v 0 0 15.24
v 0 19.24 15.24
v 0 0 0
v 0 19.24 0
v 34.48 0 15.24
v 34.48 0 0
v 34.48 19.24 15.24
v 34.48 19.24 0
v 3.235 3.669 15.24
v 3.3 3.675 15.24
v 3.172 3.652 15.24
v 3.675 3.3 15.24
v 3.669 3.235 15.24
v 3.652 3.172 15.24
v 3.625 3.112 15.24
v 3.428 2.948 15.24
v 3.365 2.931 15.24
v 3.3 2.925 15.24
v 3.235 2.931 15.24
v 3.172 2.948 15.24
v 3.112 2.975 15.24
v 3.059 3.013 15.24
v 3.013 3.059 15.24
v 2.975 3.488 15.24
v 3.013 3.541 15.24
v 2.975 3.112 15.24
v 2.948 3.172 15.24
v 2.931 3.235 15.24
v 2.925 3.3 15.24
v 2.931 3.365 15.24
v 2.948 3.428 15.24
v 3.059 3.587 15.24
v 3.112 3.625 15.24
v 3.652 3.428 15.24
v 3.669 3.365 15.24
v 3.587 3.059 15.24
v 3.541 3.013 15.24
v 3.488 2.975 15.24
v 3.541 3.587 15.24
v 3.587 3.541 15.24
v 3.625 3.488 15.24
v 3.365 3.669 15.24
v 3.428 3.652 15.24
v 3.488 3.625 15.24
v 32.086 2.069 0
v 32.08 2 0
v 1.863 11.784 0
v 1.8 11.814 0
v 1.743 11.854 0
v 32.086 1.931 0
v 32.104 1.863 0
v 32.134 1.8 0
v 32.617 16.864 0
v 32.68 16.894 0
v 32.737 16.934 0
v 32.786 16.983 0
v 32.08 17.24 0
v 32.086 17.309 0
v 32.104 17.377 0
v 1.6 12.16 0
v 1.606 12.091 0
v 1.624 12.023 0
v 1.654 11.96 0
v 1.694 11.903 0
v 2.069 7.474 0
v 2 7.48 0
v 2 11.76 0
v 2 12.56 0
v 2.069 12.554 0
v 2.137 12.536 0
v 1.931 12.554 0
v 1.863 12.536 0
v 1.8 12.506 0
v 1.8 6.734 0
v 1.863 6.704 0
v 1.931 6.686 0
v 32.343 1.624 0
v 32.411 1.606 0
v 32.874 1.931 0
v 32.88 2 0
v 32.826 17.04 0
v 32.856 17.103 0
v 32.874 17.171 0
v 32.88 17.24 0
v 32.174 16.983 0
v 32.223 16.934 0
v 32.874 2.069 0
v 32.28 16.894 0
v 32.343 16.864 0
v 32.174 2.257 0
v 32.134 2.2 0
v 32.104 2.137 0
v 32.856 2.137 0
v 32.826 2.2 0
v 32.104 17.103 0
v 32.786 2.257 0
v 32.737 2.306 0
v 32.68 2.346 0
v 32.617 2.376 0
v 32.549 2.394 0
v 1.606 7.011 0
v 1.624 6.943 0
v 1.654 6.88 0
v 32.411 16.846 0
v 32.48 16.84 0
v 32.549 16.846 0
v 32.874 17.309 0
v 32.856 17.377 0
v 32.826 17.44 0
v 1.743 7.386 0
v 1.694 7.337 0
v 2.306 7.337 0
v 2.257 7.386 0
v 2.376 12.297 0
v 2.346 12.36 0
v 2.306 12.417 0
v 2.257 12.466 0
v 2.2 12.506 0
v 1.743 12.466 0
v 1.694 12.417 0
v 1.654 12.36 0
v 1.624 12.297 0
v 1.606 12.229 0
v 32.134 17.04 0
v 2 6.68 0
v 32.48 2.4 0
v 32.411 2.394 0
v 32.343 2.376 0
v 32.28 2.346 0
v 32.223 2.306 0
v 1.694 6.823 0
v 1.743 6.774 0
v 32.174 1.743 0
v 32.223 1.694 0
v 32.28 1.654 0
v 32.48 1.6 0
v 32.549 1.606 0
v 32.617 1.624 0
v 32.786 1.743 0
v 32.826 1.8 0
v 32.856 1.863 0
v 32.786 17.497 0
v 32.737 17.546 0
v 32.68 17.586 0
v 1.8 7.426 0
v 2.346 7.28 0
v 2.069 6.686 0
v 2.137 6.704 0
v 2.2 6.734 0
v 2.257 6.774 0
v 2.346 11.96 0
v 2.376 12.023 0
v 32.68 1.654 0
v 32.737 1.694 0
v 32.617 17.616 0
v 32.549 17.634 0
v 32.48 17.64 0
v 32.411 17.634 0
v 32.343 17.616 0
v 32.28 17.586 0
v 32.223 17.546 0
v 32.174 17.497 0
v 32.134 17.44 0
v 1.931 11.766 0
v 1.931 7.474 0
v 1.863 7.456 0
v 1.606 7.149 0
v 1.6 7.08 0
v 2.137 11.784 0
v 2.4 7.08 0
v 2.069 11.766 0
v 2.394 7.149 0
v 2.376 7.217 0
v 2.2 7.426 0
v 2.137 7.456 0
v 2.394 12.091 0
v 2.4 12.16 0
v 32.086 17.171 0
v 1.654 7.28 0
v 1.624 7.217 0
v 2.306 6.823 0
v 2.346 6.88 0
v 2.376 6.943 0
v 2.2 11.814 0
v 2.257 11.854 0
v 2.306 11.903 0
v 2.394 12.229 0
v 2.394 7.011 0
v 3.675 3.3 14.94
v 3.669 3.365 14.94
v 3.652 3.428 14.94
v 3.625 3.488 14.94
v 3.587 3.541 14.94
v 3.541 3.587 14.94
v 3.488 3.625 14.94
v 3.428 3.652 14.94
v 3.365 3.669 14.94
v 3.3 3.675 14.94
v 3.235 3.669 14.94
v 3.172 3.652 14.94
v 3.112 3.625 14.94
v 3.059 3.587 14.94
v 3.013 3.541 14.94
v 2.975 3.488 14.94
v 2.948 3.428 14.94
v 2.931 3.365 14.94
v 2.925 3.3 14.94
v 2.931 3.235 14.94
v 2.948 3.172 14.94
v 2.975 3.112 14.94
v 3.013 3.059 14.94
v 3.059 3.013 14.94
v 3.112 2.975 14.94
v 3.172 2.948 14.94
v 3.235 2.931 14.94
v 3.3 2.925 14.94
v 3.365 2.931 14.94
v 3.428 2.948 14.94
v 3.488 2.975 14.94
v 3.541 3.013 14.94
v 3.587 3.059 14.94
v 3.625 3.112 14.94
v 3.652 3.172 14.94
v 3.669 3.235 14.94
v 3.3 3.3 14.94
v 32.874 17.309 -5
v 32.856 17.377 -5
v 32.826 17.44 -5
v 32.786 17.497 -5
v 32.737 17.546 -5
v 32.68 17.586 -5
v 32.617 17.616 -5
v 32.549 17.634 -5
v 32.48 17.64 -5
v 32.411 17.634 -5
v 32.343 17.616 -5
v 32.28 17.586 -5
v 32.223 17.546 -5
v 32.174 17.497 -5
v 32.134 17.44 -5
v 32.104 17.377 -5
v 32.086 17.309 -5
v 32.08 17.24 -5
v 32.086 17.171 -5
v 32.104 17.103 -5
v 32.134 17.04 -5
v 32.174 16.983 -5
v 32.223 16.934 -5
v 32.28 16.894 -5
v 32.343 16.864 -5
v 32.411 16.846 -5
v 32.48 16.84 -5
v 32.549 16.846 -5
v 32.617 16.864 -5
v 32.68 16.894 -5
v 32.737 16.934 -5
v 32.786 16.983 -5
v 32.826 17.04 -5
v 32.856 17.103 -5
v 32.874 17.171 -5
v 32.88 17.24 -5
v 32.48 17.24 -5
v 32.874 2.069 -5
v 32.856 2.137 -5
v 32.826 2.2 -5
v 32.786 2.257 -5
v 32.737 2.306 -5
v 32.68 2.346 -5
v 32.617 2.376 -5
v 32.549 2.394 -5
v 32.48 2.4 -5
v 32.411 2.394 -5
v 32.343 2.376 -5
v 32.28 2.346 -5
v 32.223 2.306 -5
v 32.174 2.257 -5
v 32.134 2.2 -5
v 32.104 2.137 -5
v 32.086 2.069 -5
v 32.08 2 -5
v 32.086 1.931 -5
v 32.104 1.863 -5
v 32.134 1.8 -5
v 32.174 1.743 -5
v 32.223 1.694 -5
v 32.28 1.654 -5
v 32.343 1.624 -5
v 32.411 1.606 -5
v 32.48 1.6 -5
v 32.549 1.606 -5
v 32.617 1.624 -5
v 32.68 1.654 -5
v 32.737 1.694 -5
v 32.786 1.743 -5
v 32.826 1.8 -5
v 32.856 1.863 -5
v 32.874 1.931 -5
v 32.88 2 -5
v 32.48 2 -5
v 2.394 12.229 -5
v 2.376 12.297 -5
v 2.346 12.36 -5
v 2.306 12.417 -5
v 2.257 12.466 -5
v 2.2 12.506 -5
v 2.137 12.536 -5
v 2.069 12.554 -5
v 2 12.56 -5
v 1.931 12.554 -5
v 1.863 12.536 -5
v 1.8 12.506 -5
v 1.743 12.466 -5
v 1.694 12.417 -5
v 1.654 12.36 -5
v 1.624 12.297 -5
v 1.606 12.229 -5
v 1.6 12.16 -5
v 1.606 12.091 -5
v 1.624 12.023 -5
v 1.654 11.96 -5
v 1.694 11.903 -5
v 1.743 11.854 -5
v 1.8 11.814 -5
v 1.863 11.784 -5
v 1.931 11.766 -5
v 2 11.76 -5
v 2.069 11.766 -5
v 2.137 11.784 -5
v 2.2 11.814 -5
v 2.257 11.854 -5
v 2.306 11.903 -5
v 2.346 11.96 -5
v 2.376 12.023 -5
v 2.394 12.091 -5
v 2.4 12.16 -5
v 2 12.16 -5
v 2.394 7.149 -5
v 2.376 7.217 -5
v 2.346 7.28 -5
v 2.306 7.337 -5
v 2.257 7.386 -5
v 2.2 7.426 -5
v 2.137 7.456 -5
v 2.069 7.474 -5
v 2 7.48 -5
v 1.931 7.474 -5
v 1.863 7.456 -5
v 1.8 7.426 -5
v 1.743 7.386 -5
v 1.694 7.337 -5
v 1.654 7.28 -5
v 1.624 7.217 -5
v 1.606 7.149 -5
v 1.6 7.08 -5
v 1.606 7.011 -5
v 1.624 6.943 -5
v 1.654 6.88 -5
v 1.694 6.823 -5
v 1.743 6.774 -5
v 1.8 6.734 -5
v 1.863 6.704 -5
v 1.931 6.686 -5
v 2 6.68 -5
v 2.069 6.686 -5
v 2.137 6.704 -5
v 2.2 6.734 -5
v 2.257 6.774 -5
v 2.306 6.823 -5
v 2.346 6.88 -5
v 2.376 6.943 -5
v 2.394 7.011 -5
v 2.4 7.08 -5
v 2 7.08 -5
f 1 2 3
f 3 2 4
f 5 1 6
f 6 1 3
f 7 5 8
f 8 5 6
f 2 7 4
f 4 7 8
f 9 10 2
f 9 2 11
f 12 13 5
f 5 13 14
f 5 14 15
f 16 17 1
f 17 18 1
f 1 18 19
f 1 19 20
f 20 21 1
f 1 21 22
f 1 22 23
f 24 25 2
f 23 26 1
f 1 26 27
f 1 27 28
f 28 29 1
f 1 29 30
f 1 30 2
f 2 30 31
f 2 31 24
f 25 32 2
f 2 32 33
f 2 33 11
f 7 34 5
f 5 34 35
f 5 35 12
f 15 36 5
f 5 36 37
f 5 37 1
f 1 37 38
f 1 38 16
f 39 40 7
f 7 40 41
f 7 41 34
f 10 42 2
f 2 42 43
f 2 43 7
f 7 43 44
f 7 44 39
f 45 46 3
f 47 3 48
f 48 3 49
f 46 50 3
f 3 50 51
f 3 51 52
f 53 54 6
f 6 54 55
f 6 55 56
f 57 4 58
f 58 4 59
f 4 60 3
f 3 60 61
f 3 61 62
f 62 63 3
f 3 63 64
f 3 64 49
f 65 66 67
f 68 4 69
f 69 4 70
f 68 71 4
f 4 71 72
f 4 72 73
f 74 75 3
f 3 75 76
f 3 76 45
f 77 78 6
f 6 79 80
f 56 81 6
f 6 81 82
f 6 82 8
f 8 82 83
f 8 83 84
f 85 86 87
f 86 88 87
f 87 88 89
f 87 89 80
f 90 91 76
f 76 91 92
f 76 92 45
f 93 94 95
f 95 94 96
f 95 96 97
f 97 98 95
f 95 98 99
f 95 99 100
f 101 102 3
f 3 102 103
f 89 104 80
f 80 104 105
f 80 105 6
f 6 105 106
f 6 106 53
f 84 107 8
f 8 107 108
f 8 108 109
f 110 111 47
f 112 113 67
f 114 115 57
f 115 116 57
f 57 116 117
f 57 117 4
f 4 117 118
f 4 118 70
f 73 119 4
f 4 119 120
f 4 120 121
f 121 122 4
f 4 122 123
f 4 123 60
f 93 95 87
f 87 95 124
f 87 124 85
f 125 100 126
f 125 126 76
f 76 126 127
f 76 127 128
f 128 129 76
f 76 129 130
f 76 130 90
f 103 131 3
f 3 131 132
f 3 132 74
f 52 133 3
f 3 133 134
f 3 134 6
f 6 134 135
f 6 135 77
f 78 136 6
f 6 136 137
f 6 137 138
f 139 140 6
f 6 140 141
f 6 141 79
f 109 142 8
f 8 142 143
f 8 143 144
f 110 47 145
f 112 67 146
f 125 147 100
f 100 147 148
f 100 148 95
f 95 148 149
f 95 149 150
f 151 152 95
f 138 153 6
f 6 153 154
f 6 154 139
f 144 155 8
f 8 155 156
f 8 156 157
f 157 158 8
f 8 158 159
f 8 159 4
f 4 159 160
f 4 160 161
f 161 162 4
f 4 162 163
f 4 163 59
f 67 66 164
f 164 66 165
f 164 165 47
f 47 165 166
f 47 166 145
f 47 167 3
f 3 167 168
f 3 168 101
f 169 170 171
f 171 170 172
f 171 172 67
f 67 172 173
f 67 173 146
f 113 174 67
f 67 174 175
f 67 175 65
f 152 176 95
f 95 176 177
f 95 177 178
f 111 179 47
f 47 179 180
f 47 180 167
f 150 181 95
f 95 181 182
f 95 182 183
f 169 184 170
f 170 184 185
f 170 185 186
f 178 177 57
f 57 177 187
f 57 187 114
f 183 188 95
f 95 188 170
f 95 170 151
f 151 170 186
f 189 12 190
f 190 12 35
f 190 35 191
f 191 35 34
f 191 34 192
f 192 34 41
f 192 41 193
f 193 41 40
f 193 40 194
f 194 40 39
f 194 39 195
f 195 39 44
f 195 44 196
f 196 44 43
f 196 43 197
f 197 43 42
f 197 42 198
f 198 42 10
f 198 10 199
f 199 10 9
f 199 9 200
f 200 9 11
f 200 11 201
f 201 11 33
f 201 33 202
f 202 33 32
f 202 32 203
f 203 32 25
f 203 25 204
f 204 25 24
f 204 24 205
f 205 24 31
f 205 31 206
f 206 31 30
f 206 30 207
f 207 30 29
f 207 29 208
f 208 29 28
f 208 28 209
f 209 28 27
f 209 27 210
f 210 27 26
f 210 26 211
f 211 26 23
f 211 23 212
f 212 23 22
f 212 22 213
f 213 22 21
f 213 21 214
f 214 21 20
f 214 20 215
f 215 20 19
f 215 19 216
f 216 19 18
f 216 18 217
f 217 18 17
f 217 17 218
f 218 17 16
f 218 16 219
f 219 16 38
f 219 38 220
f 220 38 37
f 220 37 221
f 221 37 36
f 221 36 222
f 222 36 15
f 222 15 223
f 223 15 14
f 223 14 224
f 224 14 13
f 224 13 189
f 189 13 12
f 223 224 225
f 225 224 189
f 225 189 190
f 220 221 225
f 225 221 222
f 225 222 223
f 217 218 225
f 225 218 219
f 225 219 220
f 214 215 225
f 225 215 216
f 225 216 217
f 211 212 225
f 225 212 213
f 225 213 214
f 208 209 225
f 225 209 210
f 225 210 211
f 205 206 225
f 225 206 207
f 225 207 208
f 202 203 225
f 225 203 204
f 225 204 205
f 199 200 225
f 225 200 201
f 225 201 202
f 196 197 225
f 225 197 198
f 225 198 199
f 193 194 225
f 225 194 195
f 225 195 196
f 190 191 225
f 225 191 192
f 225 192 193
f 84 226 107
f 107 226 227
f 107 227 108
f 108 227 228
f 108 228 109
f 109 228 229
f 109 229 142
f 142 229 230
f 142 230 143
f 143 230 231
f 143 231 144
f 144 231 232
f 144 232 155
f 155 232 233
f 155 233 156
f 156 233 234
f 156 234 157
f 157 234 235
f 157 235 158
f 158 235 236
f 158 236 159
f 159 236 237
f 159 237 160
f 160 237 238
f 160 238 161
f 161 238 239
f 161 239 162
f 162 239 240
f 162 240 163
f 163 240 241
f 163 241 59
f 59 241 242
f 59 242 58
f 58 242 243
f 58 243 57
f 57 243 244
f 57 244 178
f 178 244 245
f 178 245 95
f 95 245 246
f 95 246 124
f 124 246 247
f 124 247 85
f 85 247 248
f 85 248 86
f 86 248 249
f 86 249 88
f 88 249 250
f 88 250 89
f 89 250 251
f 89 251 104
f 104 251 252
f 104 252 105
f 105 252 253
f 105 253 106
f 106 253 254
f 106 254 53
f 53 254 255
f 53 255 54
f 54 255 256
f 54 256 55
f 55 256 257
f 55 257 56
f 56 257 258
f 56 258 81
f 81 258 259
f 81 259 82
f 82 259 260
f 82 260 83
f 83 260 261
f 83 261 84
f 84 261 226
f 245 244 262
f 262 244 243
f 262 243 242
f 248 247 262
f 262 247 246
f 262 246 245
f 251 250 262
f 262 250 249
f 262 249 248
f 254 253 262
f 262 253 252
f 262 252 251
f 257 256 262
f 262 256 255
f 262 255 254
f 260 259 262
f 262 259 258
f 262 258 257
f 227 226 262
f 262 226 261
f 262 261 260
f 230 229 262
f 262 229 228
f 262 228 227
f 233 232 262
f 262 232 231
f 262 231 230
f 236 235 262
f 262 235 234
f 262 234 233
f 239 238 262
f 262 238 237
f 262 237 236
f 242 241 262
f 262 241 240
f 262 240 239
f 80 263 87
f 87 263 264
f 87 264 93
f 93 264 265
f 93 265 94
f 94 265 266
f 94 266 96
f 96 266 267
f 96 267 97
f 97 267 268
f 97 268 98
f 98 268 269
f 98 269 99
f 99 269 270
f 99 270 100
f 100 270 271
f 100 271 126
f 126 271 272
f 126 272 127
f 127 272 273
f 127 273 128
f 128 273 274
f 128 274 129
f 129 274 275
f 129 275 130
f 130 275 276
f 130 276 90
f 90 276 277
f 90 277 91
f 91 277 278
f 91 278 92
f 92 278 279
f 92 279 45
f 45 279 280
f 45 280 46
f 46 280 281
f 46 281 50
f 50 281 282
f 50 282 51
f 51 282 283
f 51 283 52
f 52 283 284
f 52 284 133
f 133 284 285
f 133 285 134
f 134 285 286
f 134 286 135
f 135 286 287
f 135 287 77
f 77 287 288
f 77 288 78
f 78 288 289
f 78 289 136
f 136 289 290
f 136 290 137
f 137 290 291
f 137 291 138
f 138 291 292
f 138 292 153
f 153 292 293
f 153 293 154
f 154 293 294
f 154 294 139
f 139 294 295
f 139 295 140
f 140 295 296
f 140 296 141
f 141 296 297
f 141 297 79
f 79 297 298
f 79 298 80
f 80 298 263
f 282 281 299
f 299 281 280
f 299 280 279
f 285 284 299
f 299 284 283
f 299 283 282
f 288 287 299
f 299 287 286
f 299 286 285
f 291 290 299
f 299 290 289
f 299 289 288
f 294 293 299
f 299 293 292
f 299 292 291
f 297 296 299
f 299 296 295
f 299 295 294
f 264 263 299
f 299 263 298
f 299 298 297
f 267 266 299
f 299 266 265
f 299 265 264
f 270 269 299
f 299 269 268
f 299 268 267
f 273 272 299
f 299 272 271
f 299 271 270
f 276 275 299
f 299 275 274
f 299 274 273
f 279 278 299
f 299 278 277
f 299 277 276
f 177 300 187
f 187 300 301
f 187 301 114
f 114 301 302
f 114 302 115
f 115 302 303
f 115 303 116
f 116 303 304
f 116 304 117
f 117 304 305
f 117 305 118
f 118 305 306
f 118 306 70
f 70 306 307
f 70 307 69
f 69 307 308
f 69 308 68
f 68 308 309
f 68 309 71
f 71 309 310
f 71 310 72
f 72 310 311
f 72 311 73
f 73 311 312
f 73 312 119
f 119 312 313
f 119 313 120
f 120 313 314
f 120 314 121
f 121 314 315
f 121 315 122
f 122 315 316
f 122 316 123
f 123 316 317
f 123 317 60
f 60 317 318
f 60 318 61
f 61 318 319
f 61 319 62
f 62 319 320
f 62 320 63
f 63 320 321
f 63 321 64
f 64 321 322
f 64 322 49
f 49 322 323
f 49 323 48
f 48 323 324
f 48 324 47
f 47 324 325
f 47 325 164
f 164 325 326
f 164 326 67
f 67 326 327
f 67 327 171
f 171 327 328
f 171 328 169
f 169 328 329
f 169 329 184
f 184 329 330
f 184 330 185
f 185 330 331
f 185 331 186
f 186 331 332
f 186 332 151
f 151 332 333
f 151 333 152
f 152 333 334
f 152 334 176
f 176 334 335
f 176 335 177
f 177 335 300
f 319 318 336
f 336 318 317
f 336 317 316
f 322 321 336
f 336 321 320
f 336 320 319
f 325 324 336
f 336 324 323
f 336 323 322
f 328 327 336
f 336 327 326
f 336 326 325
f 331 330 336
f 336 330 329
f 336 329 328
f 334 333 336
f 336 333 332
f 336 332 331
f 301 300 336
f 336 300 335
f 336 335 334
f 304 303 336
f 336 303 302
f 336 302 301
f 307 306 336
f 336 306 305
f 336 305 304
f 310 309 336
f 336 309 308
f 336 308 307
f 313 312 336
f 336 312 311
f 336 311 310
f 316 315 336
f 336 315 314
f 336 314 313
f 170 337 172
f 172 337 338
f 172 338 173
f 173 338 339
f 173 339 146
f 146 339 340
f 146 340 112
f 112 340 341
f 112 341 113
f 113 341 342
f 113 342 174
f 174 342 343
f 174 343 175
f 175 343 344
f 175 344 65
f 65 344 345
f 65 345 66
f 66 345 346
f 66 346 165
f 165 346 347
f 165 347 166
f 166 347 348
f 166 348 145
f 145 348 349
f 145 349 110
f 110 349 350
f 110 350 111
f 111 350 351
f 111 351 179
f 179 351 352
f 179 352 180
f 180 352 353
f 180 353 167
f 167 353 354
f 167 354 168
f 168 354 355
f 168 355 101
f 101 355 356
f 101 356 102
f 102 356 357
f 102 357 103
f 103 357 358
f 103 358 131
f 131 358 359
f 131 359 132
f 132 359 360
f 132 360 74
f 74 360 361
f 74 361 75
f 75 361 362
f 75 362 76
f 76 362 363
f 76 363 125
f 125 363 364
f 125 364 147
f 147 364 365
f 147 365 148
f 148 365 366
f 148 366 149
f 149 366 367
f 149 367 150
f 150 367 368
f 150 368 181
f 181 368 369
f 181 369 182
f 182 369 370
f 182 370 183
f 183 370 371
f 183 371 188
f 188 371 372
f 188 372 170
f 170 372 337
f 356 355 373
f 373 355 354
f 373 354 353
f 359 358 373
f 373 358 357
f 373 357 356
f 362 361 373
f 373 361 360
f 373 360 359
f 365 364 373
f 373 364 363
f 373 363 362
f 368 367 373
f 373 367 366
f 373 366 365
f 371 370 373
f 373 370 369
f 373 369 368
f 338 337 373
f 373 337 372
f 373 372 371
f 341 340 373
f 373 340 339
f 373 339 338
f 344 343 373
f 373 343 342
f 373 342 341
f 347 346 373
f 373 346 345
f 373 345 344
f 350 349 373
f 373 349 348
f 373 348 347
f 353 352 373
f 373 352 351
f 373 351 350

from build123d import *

# Parameters (mm, degrees)
SKIZZE1_W                       = 34.48
SKIZZE1_H                       = 19.24
AUFSATZ_LINEAR_AUSTRAGEN1_DEPTH = 15.24
SKIZZE2_R                       = 0.375
SCHNITT_LINEAR_AUSTRAGEN1_DEPTH = 0.3
SKIZZE3_R                       = 0.4
AUFSATZ_LINEAR_AUSTRAGEN2_DEPTH = 5


with BuildPart() as part:
    # Skizze1 → Aufsatz-Linear austragen1 (new body)
    with BuildSketch(Plane.XY):
        with Locations((17.24, 9.62)):
            Rectangle(SKIZZE1_W, SKIZZE1_H)
    extrude(amount=AUFSATZ_LINEAR_AUSTRAGEN1_DEPTH)

    # Skizze2 → Schnitt-Linear austragen1 (cut)
    with BuildSketch(Plane.XY.offset(15.24)):
        with Locations((3.3, 3.3)):
            Circle(SKIZZE2_R)
    extrude(amount=-SCHNITT_LINEAR_AUSTRAGEN1_DEPTH, mode=Mode.SUBTRACT)

    # Skizze3 → Aufsatz-Linear austragen2 (add)
    with BuildSketch(Plane(origin=(0, 0, 0), x_dir=(-1, 0, 0), z_dir=(0, 0, -1))):
        with Locations((-32.48, 17.24)):
            Circle(SKIZZE3_R)
        with Locations((-32.48, 2)):
            Circle(SKIZZE3_R)
        with Locations((-2, 12.16)):
            Circle(SKIZZE3_R)
        with Locations((-2, 7.08)):
            Circle(SKIZZE3_R)
    extrude(amount=AUFSATZ_LINEAR_AUSTRAGEN2_DEPTH)


solid = part.part
